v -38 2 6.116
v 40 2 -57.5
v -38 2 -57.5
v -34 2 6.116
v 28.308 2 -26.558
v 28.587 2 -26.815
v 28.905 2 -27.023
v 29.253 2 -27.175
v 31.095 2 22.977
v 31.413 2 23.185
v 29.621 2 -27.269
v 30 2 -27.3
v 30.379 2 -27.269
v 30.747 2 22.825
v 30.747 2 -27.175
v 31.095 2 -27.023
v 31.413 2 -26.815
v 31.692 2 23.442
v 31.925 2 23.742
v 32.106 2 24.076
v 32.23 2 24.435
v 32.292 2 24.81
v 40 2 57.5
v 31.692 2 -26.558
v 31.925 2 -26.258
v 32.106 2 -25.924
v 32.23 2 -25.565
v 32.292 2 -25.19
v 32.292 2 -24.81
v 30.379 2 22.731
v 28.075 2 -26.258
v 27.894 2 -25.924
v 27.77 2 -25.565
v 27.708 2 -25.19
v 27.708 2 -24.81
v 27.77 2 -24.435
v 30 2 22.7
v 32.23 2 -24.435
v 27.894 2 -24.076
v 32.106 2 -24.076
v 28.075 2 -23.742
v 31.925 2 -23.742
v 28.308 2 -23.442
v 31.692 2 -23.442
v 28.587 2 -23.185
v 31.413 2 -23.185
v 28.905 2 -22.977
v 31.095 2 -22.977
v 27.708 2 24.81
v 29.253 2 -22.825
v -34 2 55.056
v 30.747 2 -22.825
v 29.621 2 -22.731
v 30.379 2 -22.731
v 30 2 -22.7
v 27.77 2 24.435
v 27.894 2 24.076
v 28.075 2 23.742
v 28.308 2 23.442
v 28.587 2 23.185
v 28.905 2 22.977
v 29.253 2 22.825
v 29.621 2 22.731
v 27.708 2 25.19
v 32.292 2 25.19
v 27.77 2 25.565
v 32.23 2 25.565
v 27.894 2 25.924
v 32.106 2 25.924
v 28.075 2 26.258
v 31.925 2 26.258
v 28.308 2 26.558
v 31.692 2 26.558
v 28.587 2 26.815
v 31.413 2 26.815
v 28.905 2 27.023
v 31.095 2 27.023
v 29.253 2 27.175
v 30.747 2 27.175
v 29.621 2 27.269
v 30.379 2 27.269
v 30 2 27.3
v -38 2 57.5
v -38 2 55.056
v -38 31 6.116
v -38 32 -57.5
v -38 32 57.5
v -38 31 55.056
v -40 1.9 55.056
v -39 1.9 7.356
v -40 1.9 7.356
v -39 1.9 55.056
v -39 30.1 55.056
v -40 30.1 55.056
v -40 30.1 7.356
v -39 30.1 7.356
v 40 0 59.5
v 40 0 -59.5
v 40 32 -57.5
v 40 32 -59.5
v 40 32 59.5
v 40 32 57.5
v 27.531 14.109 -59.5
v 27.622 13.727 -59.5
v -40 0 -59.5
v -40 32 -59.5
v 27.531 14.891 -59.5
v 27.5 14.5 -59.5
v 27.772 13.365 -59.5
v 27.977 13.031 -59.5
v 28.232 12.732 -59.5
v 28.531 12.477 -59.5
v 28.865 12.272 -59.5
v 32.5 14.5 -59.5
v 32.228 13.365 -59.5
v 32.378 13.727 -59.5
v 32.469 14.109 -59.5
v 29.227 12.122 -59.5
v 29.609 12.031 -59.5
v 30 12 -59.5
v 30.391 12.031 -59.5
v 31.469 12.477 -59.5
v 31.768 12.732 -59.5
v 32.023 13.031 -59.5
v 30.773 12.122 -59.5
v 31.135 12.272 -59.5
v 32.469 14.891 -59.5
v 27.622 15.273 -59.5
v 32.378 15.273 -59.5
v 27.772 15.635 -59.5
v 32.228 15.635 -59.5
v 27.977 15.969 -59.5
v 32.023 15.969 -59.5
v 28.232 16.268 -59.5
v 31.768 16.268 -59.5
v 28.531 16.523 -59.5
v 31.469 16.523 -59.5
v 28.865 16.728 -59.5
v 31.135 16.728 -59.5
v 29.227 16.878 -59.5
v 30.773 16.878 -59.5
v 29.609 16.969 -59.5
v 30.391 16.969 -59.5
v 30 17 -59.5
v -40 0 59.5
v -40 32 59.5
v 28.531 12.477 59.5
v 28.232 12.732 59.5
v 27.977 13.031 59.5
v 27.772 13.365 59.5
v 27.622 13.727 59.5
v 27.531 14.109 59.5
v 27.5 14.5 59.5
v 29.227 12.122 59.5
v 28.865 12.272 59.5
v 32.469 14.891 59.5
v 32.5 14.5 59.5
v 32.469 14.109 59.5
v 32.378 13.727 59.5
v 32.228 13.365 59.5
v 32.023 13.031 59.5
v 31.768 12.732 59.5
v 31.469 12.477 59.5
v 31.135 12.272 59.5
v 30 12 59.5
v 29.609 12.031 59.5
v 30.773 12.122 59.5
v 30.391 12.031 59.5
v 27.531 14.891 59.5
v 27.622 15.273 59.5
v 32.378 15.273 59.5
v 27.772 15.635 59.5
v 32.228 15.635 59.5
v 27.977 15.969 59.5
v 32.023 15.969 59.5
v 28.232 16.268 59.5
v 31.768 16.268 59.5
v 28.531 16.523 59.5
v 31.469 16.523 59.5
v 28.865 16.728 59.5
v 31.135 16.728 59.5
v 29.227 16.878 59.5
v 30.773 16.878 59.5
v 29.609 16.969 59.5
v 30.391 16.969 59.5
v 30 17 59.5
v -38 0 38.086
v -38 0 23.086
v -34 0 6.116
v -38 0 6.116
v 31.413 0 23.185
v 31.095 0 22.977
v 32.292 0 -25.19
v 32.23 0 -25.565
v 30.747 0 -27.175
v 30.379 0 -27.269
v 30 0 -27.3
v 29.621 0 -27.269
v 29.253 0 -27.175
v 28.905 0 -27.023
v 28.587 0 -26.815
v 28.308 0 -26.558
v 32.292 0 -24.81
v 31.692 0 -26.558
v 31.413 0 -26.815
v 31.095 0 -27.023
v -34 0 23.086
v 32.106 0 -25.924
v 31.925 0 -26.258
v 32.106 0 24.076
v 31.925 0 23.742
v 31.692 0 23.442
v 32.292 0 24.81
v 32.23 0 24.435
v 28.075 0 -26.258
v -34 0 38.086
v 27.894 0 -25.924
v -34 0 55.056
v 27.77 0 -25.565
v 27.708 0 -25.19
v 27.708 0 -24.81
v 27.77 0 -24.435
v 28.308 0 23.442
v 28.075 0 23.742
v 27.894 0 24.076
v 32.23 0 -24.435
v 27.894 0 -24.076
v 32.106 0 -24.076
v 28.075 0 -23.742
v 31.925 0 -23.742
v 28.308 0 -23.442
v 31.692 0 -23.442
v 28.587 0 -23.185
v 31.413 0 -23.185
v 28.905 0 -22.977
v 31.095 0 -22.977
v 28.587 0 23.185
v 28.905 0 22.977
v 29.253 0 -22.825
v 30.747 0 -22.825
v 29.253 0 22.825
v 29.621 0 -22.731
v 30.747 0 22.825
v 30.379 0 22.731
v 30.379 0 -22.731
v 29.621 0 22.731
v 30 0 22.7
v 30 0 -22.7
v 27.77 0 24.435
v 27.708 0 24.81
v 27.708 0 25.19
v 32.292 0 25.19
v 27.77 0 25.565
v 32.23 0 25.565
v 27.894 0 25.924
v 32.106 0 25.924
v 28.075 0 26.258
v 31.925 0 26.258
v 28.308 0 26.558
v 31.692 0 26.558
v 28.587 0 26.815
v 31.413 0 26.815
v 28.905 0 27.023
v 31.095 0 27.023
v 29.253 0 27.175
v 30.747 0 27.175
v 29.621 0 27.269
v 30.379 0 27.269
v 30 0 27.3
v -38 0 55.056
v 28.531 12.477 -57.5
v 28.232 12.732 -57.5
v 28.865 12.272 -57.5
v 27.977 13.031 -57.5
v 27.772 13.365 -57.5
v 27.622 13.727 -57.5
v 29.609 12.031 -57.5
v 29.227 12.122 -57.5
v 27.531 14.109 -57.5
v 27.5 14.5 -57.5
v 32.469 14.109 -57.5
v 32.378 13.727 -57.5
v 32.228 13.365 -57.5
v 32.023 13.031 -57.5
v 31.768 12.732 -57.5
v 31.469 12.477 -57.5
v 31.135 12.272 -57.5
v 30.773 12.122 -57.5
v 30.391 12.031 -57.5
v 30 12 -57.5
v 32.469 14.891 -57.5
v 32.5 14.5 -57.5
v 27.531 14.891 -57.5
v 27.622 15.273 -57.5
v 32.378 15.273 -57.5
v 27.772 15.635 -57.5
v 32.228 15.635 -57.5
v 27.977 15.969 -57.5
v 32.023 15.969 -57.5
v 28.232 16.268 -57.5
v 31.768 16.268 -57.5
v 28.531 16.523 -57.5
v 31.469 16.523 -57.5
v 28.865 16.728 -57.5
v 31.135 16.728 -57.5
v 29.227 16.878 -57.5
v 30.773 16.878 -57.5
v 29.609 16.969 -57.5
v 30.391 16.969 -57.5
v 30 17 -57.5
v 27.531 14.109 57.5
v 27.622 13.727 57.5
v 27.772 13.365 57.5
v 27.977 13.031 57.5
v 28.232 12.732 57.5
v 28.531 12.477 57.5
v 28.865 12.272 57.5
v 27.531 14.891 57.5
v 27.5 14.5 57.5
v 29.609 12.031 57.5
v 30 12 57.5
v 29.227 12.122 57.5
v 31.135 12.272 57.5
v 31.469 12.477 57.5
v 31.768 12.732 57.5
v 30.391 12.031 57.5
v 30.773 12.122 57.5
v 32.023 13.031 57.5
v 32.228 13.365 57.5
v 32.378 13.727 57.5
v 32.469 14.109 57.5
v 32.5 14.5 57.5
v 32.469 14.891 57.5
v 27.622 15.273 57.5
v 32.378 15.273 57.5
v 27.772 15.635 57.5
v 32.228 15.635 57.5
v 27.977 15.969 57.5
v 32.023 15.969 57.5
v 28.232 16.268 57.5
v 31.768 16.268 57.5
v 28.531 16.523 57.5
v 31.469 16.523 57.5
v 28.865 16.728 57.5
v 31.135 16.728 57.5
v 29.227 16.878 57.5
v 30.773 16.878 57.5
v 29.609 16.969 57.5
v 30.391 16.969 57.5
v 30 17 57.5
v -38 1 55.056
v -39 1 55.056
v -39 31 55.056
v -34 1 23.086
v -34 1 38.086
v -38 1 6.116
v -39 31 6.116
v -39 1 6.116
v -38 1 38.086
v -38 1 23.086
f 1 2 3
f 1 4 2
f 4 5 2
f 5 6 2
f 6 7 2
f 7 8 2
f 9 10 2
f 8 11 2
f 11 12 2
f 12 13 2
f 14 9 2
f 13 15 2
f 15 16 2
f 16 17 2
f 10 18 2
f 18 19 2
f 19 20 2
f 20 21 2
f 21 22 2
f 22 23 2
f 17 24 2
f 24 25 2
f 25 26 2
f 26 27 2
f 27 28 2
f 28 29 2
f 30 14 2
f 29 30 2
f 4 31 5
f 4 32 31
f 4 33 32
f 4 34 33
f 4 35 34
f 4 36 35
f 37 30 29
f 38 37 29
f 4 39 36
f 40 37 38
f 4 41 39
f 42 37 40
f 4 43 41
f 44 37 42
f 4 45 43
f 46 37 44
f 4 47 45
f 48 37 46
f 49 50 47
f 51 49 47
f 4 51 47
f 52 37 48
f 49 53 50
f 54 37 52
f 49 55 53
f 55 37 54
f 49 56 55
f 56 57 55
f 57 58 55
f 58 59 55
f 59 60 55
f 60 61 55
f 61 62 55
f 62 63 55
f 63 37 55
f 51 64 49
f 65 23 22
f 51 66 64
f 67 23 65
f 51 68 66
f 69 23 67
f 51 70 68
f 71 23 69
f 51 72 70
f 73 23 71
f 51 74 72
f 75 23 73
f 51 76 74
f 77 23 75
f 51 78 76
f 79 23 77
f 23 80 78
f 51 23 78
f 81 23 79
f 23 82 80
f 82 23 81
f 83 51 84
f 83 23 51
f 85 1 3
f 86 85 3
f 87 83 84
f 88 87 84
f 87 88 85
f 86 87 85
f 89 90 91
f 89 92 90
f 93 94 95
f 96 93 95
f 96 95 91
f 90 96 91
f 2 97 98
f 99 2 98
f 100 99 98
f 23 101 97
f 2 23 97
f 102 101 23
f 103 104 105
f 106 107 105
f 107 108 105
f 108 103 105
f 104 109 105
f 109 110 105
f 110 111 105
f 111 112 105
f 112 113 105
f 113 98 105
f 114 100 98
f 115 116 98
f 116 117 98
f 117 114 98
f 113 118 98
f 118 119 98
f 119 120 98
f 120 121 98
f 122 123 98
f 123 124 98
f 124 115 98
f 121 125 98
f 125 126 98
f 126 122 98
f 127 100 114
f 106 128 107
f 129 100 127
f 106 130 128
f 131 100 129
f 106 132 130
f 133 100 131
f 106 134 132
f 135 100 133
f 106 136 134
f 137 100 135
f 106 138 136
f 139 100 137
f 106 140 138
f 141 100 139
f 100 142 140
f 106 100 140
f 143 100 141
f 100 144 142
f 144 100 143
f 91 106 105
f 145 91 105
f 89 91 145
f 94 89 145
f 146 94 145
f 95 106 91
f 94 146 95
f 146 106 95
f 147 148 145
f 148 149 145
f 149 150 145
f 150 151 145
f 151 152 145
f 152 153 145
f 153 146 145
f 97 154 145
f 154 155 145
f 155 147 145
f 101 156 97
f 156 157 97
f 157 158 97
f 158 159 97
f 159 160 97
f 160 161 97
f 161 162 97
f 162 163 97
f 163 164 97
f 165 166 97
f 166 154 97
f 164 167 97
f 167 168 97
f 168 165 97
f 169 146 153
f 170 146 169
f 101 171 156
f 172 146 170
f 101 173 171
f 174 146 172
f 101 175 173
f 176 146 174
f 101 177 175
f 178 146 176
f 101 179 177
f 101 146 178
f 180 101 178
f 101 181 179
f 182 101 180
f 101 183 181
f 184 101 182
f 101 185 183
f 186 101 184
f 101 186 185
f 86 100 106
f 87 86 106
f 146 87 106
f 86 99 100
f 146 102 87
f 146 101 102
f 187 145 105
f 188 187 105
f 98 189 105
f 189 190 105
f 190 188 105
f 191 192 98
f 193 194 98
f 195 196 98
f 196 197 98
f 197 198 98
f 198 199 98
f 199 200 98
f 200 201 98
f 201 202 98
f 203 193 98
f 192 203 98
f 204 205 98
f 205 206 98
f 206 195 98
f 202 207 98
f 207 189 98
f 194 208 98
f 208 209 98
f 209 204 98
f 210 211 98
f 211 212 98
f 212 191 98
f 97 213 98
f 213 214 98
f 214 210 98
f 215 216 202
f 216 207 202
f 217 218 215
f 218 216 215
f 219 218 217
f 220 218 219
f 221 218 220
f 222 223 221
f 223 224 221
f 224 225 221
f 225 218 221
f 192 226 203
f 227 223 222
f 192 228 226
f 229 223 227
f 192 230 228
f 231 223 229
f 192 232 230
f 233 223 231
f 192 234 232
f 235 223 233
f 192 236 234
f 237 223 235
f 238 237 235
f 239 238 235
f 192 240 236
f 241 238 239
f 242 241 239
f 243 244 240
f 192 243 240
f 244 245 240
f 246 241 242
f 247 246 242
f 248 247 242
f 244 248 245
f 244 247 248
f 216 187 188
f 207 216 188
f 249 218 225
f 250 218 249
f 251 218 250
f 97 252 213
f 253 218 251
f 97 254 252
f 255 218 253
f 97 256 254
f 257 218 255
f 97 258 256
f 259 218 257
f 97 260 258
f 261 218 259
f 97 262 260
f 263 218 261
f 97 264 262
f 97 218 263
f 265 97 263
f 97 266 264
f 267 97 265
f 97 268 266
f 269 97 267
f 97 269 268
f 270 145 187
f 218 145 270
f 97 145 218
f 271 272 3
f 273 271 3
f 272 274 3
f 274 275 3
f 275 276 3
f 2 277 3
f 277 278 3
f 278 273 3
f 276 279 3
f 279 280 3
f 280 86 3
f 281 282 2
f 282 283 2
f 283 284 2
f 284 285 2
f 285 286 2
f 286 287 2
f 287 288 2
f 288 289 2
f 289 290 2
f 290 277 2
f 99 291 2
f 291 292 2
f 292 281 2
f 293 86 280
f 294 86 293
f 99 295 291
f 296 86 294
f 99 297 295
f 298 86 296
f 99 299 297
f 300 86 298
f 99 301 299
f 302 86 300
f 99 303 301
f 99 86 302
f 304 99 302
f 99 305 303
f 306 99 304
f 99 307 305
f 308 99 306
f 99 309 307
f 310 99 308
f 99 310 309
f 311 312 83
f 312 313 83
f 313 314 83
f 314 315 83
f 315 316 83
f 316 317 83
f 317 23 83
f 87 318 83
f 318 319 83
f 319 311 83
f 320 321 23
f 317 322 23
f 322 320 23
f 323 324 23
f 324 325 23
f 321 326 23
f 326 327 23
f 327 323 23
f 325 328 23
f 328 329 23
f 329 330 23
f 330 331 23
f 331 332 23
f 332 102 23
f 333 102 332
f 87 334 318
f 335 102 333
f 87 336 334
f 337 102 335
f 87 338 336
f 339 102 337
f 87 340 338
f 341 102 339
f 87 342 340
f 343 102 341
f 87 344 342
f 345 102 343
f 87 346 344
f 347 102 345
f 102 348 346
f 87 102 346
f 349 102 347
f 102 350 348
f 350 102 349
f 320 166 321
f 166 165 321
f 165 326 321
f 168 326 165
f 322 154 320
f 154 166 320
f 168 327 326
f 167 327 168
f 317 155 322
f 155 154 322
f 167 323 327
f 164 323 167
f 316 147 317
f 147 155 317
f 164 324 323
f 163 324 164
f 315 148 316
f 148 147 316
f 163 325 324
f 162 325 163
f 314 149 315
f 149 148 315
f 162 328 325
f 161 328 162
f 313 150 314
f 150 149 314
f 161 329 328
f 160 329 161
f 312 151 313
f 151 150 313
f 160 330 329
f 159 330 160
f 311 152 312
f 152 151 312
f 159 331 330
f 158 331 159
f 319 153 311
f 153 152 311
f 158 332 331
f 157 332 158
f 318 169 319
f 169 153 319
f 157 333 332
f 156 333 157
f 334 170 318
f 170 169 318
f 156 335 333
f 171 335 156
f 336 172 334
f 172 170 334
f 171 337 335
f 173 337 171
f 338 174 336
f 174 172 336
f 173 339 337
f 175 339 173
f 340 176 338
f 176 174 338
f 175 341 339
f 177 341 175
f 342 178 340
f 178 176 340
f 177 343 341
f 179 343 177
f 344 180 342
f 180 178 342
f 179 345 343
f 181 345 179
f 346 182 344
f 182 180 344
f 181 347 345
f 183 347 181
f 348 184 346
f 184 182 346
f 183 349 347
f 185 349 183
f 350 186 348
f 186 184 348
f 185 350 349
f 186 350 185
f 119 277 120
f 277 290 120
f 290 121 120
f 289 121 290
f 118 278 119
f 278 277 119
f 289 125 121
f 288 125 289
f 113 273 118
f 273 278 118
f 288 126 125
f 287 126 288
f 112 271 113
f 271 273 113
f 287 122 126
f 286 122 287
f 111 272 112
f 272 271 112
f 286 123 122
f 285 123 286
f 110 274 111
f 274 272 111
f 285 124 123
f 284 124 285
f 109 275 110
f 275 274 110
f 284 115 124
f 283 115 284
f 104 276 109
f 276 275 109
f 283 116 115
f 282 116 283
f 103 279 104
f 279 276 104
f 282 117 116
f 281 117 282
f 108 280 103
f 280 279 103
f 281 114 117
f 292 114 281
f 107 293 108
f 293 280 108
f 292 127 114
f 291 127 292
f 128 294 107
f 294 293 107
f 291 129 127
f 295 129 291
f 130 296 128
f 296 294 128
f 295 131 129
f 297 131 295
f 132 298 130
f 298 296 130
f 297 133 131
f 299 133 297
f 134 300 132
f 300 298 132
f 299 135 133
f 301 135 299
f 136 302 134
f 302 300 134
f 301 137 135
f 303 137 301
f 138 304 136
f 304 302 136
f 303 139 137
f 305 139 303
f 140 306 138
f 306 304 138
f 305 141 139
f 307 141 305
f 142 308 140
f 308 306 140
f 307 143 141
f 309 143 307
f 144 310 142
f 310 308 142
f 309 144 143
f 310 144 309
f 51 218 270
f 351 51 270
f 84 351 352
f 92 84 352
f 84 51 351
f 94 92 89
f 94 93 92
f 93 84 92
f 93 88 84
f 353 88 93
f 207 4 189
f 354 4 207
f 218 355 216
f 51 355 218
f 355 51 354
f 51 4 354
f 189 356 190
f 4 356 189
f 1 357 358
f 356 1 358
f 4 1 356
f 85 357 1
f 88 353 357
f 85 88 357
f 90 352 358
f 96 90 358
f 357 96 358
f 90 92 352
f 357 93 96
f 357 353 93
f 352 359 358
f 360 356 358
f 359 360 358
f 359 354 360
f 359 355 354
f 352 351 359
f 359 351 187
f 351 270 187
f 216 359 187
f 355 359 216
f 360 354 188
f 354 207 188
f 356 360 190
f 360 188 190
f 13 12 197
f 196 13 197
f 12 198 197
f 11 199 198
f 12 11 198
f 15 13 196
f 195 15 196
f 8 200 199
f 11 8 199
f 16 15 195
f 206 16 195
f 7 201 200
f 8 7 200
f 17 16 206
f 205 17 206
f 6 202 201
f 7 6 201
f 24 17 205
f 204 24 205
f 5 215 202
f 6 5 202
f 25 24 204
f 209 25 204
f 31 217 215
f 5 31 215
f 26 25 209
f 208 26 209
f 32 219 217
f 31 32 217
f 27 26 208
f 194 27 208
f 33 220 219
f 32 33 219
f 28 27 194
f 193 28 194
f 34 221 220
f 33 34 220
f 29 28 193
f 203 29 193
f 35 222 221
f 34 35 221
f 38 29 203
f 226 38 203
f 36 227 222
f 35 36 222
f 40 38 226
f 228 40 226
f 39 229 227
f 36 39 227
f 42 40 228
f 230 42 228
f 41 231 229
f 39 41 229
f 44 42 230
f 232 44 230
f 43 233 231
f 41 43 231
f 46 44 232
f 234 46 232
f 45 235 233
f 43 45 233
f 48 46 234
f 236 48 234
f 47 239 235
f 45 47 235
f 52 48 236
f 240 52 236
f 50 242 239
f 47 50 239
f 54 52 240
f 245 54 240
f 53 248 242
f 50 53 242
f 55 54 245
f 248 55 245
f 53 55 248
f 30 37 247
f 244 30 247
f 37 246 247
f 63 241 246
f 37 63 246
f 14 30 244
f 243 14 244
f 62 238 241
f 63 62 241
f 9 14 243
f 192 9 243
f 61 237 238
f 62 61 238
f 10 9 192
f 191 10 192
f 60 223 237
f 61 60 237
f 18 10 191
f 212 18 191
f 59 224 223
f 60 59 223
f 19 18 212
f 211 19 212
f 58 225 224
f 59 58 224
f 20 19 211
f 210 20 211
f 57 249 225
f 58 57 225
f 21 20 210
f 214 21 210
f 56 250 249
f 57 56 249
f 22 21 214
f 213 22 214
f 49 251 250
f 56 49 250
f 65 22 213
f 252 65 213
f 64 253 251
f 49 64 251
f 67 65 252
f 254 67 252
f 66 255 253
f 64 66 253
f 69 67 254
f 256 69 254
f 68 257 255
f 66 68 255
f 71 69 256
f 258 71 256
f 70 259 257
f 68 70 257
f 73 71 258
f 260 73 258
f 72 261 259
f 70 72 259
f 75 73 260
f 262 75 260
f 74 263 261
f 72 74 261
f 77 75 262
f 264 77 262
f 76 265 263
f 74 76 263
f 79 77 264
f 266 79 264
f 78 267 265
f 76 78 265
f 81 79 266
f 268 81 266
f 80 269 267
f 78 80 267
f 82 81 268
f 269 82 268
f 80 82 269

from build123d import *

# Parameters (mm, degrees)
SKETCH1_W               = 80
SKETCH1_H               = 119
BOSS_EXTRUDE1_DEPTH     = 32
SKETCH2_W               = 78
SKETCH2_H               = 115
CUT_EXTRUDE1_DEPTH      = 30
CUT_EXTRUDE2_DEPTH      = 130.55693729
CUT_EXTRUDE2_DEPTH_BACK = 130.55693729
SKETCH3_R               = 2.5
SKETCH4_W               = 47.7
SKETCH4_H               = 28.2
CUT_EXTRUDE4_DEPTH      = 10
CUT_EXTRUDE5_START      = -1
SKETCH5_W               = 5
SKETCH5_H               = 48.939685833
CUT_EXTRUDE5_DEPTH      = 30
SKETCH6_W               = 4
SKETCH6_H               = 16.969842916
SKETCH6_H_2             = 16.969842917
CUT_EXTRUDE6_DEPTH      = 2
SKETCH7_R               = 2.3
CUT_EXTRUDE7_DEPTH      = 79.51273782


with BuildPart() as part:
    # Sketch1 → Boss-Extrude1 (new body)
    with BuildSketch(Plane(origin=(0, 0, 0), x_dir=(1, 0, 0), z_dir=(0, 1, 0))):
        Rectangle(SKETCH1_W, SKETCH1_H)
    extrude(amount=BOSS_EXTRUDE1_DEPTH)

    # Sketch2 → Cut-Extrude1 (cut)
    with BuildSketch(Plane(origin=(0, 32, 0), x_dir=(1, 0, 0), z_dir=(0, 1, 0))):
        with Locations((1, 0)):
            Rectangle(SKETCH2_W, SKETCH2_H)
    extrude(amount=-CUT_EXTRUDE1_DEPTH, mode=Mode.SUBTRACT)

    # Sketch3 → Cut-Extrude2 (cut, two sides: drawn at the far end of the back side and taken through both)
    with BuildSketch(Plane.XY.offset(59.5).offset(-CUT_EXTRUDE2_DEPTH_BACK)):
        with Locations((30, 14.5)):
            Circle(SKETCH3_R)
    extrude(amount=CUT_EXTRUDE2_DEPTH + CUT_EXTRUDE2_DEPTH_BACK, mode=Mode.SUBTRACT)

    # Sketch4 → Cut-Extrude4 (cut)
    with BuildSketch(Plane(origin=(-38, 0, 0), x_dir=(0, 0, -1), z_dir=(1, 0, 0))):
        with Locations((-31.205661858, 16)):
            Rectangle(SKETCH4_W, SKETCH4_H)
    extrude(amount=-CUT_EXTRUDE4_DEPTH, mode=Mode.SUBTRACT)

    # Sketch5 → Cut-Extrude5 (cut)
    with BuildSketch(Plane(origin=(0, 2, 0), x_dir=(1, 0, 0), z_dir=(0, 1, 0)).offset(CUT_EXTRUDE5_START)):
        with Locations((-36.5, -30.585818942)):
            Rectangle(SKETCH5_W, SKETCH5_H)
    extrude(amount=CUT_EXTRUDE5_DEPTH, mode=Mode.SUBTRACT)

    # Sketch6 → Cut-Extrude6 (cut)
    with BuildSketch(Plane(origin=(0, 1, 0), x_dir=(1, 0, 0), z_dir=(0, 1, 0))):
        with Locations((-36, -14.600897483)):
            Rectangle(SKETCH6_W, SKETCH6_H)
        with Locations((-36, -46.570740399)):
            Rectangle(SKETCH6_W, SKETCH6_H_2)
    extrude(amount=-CUT_EXTRUDE6_DEPTH, mode=Mode.SUBTRACT)

    # Sketch7 → Cut-Extrude7 (cut, through all)
    with BuildSketch(Plane.XZ):
        with Locations(Location((30, 25, 0), (0, 0, 270))):
            Circle(SKETCH7_R)
        with Locations(Location((30, -25, 0), (0, 0, 270))):
            Circle(SKETCH7_R)
    extrude(amount=-CUT_EXTRUDE7_DEPTH, mode=Mode.SUBTRACT)


solid = part.part
